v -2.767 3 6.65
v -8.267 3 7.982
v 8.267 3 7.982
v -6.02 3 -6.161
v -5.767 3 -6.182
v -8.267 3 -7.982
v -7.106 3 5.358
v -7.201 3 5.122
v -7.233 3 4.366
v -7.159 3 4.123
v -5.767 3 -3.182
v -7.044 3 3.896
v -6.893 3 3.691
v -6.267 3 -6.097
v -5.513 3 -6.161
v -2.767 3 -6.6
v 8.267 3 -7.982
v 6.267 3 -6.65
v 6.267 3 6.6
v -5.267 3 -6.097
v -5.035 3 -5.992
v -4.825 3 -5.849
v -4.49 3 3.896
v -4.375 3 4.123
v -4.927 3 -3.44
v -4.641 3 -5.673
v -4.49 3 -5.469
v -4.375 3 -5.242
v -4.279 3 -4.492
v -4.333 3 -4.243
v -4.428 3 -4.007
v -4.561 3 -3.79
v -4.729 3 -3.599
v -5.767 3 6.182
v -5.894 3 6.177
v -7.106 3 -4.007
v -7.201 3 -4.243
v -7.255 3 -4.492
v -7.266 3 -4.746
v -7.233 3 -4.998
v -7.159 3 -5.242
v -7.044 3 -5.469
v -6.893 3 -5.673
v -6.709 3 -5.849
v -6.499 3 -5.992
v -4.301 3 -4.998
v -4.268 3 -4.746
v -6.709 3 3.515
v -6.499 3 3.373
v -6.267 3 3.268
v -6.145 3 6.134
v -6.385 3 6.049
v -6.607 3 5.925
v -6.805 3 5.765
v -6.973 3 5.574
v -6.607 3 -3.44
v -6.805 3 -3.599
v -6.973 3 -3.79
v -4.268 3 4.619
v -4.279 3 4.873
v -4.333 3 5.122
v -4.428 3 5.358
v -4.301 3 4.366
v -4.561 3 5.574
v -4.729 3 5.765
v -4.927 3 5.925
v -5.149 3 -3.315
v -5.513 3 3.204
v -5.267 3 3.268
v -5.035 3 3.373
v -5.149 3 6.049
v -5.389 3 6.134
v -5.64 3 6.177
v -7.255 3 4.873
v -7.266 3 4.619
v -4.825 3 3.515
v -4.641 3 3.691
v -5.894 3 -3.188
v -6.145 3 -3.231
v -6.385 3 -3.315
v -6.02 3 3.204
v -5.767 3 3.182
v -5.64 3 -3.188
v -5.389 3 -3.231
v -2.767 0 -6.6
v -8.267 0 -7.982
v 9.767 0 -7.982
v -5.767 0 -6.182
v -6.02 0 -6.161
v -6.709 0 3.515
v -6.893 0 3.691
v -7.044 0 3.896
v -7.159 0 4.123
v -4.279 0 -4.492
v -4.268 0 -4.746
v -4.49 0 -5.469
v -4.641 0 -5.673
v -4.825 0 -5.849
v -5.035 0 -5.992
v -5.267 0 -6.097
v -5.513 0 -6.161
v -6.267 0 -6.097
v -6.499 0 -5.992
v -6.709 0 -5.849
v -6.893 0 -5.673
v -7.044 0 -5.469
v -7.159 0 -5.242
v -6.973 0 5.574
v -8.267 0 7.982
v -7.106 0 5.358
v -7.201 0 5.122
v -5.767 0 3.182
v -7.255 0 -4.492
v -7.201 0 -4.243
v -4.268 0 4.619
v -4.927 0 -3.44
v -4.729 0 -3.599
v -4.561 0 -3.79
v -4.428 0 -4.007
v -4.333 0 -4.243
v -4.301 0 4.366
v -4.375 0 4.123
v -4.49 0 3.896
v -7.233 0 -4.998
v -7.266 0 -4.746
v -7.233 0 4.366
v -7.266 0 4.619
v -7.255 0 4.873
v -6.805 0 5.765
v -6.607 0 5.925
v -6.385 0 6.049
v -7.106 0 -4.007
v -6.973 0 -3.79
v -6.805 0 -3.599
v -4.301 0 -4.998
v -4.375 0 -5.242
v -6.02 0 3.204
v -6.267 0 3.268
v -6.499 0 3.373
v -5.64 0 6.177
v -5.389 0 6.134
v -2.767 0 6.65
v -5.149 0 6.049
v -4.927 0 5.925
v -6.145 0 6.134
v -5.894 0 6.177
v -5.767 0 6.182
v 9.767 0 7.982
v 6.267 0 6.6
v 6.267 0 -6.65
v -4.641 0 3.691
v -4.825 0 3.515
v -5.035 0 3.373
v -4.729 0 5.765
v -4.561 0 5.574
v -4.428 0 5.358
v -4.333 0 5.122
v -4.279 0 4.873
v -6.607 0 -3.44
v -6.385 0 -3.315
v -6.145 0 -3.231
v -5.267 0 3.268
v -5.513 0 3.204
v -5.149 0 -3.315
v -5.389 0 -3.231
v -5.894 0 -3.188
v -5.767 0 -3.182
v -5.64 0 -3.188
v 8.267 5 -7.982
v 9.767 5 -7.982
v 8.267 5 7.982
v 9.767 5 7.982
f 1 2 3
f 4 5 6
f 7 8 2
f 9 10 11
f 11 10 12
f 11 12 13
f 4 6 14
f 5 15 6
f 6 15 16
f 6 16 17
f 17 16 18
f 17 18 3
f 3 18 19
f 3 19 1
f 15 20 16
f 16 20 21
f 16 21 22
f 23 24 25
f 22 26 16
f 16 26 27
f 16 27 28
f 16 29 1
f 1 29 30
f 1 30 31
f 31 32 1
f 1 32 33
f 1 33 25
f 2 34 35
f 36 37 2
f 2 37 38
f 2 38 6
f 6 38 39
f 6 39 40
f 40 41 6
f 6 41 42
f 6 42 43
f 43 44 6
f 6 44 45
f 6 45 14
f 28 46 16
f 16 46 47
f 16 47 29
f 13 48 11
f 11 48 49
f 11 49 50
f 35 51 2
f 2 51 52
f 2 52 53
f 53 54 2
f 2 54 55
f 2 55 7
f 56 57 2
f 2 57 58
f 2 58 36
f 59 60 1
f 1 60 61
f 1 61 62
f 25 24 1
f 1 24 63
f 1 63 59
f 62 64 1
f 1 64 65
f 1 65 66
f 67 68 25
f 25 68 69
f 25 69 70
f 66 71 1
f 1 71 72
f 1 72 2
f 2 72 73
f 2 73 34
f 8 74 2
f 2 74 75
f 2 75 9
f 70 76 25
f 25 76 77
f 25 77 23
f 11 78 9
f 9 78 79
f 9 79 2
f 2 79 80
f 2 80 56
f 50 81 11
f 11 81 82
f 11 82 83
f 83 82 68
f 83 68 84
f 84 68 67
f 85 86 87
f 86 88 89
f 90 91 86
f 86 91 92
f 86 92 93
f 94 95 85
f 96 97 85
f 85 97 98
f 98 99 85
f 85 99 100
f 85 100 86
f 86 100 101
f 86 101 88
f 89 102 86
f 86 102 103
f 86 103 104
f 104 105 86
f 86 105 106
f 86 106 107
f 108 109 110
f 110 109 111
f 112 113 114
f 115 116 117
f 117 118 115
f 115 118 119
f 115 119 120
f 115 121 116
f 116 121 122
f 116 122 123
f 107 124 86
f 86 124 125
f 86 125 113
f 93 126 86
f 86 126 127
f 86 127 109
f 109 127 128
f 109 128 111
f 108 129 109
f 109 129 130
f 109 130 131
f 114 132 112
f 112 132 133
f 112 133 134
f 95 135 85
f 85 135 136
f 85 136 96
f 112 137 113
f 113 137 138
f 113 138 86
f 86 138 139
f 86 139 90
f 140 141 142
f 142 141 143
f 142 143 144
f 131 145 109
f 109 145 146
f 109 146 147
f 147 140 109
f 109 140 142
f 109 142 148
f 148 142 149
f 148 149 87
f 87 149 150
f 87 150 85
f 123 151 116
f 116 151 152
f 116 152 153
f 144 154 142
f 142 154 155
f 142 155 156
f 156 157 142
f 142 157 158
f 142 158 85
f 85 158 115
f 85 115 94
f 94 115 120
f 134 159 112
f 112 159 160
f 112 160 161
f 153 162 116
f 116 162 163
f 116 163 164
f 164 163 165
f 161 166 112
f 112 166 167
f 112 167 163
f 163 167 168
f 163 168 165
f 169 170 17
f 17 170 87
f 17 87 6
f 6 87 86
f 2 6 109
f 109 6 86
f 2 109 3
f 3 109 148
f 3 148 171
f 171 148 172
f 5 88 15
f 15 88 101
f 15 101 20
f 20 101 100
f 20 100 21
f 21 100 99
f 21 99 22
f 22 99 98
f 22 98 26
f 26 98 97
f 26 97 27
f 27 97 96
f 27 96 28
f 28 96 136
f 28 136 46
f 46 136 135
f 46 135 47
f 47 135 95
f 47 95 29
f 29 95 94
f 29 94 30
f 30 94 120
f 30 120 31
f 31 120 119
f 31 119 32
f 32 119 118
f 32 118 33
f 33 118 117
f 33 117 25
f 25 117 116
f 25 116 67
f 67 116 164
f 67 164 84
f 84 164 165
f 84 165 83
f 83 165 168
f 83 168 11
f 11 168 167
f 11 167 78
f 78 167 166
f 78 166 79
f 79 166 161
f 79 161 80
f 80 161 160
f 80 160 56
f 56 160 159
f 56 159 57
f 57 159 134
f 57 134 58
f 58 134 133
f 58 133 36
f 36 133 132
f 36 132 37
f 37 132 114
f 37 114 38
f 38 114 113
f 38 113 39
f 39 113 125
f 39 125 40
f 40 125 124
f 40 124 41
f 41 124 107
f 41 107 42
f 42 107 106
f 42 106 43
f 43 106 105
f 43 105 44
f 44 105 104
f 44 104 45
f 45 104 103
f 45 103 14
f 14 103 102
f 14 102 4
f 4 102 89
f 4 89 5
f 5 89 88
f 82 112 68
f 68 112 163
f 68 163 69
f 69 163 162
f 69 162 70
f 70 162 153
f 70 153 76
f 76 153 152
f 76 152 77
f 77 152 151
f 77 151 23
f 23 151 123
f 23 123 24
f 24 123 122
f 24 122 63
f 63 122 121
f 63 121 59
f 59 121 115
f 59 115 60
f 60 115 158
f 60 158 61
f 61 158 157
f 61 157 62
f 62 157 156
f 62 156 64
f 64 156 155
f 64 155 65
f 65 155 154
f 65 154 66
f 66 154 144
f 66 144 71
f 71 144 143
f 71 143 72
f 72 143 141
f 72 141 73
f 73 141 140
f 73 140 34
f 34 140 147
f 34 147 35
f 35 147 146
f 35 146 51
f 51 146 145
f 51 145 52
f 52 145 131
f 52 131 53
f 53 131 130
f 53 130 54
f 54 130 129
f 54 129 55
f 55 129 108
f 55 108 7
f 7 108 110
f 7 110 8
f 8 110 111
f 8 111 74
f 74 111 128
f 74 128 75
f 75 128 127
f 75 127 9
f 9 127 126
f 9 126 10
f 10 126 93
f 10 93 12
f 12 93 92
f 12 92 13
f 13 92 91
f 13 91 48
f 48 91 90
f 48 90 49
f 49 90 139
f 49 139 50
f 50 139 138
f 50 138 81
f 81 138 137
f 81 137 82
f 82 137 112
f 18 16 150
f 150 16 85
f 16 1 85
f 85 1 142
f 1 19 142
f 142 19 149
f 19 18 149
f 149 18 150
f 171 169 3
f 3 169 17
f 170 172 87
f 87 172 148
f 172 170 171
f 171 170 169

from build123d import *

# Parameters (mm, degrees)
SKETCH1_R           = 1.5
BOSS_EXTRUDE1_DEPTH = 3
SKETCH2_W           = 1.5
SKETCH2_H           = 15.964561632
BOSS_EXTRUDE2_DEPTH = 5


with BuildPart() as part:
    # Sketch1 → Boss-Extrude1 (new body)
    with BuildSketch(Plane(origin=(0, 0, 0), x_dir=(1, 0, 0), z_dir=(0, 1, 0))):
        Polygon((-8.266979, 7.982280816), (-8.266979, -7.982280816), (-3.266979, -7.982280816), (8.266979, -7.982280816), (8.266979, -6.599979816), (8.266979, 6.600020184), (8.266979, 7.982280816), (-3.266979, 7.982280816), align=None)
        with Locations(Location((-5.766979, 4.682321184, 0), (0, 0, 270))):
            Circle(SKETCH1_R, mode=Mode.SUBTRACT)
        with Locations(Location((-5.766979, -4.682280816, 0), (0, 0, 270))):
            Circle(SKETCH1_R, mode=Mode.SUBTRACT)
        Polygon((-2.766979, -6.649979816), (-2.766979, 6.600020184), (6.266979, 6.650020184), (6.266979, -6.599979816), align=None, mode=Mode.SUBTRACT)
    extrude(amount=BOSS_EXTRUDE1_DEPTH)

    # Sketch2 → Boss-Extrude2 (add)
    with BuildSketch(Plane(origin=(0, 0, 0), x_dir=(1, 0, 0), z_dir=(0, 1, 0))):
        with Locations((9.016979, 0)):
            Rectangle(SKETCH2_W, SKETCH2_H)
    extrude(amount=BOSS_EXTRUDE2_DEPTH)


solid = part.part
